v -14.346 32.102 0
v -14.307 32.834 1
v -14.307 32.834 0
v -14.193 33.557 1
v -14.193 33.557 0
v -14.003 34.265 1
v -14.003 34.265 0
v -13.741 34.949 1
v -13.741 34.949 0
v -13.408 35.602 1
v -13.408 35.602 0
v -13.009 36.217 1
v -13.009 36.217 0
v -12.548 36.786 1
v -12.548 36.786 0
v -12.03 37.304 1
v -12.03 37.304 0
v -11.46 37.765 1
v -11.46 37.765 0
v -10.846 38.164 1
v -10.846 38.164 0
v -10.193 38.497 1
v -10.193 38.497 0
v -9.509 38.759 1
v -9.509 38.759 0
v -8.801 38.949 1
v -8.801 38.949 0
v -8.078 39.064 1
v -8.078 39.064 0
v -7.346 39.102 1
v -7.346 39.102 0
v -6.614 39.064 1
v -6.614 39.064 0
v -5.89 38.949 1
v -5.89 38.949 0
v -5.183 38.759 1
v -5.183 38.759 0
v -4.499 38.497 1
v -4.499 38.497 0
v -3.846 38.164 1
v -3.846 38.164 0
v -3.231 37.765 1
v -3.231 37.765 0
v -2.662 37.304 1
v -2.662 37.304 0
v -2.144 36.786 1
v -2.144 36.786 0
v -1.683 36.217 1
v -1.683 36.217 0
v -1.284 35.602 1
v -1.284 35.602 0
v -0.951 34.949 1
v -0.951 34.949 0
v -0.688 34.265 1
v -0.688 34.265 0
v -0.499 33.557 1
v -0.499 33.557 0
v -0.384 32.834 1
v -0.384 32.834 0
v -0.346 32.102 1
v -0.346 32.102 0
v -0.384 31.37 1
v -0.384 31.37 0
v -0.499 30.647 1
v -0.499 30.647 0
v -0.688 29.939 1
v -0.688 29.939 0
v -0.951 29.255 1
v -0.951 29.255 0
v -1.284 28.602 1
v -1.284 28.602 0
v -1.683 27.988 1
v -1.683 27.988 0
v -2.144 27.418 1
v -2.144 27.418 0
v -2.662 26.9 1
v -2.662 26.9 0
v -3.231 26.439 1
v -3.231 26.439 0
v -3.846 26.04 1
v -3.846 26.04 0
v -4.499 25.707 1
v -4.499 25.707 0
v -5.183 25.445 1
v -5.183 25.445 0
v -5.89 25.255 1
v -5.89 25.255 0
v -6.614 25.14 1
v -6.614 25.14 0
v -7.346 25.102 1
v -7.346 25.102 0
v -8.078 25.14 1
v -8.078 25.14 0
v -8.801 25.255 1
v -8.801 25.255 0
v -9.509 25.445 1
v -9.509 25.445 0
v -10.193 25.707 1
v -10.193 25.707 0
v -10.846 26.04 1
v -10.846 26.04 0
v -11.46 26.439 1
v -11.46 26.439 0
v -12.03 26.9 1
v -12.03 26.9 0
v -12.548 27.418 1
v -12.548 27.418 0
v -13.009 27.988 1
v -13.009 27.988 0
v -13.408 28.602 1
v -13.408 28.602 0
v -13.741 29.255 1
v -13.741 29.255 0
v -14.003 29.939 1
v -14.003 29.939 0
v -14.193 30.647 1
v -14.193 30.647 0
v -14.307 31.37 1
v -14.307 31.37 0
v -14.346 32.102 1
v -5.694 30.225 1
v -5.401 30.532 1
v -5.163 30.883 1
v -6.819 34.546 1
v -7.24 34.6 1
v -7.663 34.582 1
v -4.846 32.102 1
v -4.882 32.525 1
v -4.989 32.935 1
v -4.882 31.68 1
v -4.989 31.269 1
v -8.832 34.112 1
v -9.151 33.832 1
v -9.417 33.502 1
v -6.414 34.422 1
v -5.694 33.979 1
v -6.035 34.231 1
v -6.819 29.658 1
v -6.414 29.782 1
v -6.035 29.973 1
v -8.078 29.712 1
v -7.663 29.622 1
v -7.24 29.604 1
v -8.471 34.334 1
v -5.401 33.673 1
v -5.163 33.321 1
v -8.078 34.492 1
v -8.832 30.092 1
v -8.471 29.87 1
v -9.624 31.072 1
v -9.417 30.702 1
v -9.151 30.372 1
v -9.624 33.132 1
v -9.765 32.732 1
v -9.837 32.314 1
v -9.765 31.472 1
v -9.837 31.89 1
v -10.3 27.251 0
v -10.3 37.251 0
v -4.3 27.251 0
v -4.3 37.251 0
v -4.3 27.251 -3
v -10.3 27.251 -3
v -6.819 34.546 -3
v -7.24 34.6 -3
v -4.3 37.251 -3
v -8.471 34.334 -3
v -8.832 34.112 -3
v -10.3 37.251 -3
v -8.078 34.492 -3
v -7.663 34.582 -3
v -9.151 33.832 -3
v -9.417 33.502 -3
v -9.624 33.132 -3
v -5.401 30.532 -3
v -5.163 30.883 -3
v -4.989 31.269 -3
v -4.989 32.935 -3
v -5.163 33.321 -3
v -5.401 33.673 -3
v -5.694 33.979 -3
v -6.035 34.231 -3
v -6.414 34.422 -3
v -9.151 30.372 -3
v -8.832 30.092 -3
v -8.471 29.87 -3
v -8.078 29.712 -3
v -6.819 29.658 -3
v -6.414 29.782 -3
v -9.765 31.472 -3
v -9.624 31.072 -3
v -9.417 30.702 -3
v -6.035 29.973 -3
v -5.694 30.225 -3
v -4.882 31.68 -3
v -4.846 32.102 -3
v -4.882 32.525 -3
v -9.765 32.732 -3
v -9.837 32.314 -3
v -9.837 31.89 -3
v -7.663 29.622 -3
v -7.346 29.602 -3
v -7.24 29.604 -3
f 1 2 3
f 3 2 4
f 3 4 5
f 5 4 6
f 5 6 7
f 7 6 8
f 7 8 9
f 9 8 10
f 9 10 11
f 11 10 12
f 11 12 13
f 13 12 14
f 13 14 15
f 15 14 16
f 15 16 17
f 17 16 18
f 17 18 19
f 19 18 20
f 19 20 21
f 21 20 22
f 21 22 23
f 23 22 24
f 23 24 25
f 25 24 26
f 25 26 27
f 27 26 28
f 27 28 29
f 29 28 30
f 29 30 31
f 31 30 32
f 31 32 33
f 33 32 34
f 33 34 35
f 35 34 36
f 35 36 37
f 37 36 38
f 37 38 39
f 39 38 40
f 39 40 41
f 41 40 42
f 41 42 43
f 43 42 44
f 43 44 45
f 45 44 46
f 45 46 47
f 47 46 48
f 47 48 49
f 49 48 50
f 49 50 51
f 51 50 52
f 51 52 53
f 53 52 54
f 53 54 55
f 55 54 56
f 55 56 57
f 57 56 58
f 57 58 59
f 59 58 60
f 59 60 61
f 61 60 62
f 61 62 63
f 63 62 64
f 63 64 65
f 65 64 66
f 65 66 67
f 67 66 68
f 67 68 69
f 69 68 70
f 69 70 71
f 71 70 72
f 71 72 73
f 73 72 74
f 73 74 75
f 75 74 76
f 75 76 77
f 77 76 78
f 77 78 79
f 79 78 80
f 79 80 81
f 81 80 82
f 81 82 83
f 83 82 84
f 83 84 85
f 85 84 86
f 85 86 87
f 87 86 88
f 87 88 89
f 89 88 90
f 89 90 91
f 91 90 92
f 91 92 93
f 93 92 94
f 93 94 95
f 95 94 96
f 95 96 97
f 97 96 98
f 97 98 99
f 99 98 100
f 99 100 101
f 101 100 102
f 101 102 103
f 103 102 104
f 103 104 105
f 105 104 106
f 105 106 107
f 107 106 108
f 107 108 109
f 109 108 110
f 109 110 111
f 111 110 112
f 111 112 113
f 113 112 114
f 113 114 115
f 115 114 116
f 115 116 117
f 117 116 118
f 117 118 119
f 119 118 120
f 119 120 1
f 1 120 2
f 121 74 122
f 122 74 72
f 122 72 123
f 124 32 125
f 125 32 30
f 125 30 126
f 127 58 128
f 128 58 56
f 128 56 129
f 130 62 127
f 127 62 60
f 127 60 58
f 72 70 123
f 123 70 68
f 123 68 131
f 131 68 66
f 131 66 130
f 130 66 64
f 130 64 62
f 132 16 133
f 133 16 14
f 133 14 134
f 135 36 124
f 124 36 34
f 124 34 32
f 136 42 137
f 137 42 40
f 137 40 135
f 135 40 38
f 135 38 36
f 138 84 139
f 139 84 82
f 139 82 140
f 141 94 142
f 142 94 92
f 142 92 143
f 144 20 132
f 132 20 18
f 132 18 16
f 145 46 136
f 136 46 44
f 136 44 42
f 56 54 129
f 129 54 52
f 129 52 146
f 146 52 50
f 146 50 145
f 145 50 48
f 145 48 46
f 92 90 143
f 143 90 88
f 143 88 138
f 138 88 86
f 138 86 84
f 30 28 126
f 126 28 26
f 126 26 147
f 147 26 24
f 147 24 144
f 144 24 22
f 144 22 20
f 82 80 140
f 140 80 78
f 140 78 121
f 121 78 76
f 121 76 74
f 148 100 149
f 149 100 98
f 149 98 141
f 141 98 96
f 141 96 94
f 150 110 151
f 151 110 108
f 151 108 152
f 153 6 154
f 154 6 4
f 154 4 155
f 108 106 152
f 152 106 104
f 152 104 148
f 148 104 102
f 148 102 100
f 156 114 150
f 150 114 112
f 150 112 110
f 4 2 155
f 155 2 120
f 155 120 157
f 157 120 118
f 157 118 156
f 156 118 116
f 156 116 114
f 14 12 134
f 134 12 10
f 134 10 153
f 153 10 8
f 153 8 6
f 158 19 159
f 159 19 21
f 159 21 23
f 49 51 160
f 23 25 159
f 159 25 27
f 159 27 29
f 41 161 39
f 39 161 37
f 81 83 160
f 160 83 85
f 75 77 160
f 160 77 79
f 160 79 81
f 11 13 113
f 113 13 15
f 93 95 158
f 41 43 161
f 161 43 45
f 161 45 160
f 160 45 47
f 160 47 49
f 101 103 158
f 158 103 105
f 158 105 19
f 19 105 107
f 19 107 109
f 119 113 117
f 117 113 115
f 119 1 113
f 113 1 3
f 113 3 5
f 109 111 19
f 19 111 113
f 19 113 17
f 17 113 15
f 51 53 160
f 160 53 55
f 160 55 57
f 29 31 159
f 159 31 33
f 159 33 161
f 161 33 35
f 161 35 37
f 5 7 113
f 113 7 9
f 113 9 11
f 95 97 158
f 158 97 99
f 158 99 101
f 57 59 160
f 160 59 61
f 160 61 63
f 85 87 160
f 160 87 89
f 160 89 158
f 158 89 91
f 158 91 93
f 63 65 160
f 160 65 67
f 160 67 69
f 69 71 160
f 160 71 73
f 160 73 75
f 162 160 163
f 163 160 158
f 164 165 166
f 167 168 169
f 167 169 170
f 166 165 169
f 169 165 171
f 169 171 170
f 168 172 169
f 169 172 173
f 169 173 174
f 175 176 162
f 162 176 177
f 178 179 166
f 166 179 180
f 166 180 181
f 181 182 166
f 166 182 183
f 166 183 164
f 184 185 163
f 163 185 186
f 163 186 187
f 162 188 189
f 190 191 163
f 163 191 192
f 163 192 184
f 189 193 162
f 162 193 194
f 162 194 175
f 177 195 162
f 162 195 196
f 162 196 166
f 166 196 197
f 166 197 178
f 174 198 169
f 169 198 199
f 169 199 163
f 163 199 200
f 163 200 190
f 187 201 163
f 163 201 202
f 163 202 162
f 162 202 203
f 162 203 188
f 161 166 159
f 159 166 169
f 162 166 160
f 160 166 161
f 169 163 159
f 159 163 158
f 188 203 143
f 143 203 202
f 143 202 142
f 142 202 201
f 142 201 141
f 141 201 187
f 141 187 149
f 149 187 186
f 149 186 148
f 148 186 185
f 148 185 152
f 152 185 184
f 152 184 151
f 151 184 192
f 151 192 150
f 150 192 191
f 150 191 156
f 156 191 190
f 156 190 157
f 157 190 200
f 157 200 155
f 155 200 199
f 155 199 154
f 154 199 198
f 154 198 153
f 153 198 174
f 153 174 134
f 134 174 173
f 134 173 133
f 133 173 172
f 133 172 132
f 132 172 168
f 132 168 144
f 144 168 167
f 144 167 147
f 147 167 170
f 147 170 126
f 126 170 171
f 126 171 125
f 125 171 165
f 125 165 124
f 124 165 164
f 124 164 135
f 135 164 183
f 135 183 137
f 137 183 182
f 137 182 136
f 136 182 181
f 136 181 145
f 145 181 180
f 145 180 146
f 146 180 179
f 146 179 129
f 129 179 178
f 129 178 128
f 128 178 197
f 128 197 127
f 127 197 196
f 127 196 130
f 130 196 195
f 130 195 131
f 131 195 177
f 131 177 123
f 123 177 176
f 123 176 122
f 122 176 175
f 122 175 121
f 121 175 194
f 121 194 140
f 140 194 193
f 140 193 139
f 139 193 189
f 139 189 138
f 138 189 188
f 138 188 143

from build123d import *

# Parameters (mm, degrees)
SKETCH1_R           = 7
BOSS_EXTRUDE1_DEPTH = 1
SKETCH3_W           = 3
SKETCH3_H           = 10
BOSS_EXTRUDE2_DEPTH = 3
SKETCH5_R           = 2.5
CUT_EXTRUDE1_DEPTH  = 5


with BuildPart() as part:
    # Sketch1 → Boss-Extrude1 (new body)
    with BuildSketch(Plane.XY):
        with Locations((-7.345808821, 32.102080843)):
            Circle(SKETCH1_R)
    extrude(amount=BOSS_EXTRUDE1_DEPTH)

    # Sketch3 → Boss-Extrude2 (add, symmetric)
    with BuildSketch(Plane(origin=(-7.3, 0, 0), x_dir=(0, 0, -1), z_dir=(1, 0, 0))):
        with Locations((1.5, 32.250632967)):
            Rectangle(SKETCH3_W, SKETCH3_H)
    extrude(amount=BOSS_EXTRUDE2_DEPTH, both=True)

    # Sketch5 → Cut-Extrude1 (cut)
    with BuildSketch(Plane.XY.offset(1)):
        with Locations((-7.345808821, 32.102080843)):
            Circle(SKETCH5_R)
    extrude(amount=-CUT_EXTRUDE1_DEPTH, mode=Mode.SUBTRACT)


solid = part.part
